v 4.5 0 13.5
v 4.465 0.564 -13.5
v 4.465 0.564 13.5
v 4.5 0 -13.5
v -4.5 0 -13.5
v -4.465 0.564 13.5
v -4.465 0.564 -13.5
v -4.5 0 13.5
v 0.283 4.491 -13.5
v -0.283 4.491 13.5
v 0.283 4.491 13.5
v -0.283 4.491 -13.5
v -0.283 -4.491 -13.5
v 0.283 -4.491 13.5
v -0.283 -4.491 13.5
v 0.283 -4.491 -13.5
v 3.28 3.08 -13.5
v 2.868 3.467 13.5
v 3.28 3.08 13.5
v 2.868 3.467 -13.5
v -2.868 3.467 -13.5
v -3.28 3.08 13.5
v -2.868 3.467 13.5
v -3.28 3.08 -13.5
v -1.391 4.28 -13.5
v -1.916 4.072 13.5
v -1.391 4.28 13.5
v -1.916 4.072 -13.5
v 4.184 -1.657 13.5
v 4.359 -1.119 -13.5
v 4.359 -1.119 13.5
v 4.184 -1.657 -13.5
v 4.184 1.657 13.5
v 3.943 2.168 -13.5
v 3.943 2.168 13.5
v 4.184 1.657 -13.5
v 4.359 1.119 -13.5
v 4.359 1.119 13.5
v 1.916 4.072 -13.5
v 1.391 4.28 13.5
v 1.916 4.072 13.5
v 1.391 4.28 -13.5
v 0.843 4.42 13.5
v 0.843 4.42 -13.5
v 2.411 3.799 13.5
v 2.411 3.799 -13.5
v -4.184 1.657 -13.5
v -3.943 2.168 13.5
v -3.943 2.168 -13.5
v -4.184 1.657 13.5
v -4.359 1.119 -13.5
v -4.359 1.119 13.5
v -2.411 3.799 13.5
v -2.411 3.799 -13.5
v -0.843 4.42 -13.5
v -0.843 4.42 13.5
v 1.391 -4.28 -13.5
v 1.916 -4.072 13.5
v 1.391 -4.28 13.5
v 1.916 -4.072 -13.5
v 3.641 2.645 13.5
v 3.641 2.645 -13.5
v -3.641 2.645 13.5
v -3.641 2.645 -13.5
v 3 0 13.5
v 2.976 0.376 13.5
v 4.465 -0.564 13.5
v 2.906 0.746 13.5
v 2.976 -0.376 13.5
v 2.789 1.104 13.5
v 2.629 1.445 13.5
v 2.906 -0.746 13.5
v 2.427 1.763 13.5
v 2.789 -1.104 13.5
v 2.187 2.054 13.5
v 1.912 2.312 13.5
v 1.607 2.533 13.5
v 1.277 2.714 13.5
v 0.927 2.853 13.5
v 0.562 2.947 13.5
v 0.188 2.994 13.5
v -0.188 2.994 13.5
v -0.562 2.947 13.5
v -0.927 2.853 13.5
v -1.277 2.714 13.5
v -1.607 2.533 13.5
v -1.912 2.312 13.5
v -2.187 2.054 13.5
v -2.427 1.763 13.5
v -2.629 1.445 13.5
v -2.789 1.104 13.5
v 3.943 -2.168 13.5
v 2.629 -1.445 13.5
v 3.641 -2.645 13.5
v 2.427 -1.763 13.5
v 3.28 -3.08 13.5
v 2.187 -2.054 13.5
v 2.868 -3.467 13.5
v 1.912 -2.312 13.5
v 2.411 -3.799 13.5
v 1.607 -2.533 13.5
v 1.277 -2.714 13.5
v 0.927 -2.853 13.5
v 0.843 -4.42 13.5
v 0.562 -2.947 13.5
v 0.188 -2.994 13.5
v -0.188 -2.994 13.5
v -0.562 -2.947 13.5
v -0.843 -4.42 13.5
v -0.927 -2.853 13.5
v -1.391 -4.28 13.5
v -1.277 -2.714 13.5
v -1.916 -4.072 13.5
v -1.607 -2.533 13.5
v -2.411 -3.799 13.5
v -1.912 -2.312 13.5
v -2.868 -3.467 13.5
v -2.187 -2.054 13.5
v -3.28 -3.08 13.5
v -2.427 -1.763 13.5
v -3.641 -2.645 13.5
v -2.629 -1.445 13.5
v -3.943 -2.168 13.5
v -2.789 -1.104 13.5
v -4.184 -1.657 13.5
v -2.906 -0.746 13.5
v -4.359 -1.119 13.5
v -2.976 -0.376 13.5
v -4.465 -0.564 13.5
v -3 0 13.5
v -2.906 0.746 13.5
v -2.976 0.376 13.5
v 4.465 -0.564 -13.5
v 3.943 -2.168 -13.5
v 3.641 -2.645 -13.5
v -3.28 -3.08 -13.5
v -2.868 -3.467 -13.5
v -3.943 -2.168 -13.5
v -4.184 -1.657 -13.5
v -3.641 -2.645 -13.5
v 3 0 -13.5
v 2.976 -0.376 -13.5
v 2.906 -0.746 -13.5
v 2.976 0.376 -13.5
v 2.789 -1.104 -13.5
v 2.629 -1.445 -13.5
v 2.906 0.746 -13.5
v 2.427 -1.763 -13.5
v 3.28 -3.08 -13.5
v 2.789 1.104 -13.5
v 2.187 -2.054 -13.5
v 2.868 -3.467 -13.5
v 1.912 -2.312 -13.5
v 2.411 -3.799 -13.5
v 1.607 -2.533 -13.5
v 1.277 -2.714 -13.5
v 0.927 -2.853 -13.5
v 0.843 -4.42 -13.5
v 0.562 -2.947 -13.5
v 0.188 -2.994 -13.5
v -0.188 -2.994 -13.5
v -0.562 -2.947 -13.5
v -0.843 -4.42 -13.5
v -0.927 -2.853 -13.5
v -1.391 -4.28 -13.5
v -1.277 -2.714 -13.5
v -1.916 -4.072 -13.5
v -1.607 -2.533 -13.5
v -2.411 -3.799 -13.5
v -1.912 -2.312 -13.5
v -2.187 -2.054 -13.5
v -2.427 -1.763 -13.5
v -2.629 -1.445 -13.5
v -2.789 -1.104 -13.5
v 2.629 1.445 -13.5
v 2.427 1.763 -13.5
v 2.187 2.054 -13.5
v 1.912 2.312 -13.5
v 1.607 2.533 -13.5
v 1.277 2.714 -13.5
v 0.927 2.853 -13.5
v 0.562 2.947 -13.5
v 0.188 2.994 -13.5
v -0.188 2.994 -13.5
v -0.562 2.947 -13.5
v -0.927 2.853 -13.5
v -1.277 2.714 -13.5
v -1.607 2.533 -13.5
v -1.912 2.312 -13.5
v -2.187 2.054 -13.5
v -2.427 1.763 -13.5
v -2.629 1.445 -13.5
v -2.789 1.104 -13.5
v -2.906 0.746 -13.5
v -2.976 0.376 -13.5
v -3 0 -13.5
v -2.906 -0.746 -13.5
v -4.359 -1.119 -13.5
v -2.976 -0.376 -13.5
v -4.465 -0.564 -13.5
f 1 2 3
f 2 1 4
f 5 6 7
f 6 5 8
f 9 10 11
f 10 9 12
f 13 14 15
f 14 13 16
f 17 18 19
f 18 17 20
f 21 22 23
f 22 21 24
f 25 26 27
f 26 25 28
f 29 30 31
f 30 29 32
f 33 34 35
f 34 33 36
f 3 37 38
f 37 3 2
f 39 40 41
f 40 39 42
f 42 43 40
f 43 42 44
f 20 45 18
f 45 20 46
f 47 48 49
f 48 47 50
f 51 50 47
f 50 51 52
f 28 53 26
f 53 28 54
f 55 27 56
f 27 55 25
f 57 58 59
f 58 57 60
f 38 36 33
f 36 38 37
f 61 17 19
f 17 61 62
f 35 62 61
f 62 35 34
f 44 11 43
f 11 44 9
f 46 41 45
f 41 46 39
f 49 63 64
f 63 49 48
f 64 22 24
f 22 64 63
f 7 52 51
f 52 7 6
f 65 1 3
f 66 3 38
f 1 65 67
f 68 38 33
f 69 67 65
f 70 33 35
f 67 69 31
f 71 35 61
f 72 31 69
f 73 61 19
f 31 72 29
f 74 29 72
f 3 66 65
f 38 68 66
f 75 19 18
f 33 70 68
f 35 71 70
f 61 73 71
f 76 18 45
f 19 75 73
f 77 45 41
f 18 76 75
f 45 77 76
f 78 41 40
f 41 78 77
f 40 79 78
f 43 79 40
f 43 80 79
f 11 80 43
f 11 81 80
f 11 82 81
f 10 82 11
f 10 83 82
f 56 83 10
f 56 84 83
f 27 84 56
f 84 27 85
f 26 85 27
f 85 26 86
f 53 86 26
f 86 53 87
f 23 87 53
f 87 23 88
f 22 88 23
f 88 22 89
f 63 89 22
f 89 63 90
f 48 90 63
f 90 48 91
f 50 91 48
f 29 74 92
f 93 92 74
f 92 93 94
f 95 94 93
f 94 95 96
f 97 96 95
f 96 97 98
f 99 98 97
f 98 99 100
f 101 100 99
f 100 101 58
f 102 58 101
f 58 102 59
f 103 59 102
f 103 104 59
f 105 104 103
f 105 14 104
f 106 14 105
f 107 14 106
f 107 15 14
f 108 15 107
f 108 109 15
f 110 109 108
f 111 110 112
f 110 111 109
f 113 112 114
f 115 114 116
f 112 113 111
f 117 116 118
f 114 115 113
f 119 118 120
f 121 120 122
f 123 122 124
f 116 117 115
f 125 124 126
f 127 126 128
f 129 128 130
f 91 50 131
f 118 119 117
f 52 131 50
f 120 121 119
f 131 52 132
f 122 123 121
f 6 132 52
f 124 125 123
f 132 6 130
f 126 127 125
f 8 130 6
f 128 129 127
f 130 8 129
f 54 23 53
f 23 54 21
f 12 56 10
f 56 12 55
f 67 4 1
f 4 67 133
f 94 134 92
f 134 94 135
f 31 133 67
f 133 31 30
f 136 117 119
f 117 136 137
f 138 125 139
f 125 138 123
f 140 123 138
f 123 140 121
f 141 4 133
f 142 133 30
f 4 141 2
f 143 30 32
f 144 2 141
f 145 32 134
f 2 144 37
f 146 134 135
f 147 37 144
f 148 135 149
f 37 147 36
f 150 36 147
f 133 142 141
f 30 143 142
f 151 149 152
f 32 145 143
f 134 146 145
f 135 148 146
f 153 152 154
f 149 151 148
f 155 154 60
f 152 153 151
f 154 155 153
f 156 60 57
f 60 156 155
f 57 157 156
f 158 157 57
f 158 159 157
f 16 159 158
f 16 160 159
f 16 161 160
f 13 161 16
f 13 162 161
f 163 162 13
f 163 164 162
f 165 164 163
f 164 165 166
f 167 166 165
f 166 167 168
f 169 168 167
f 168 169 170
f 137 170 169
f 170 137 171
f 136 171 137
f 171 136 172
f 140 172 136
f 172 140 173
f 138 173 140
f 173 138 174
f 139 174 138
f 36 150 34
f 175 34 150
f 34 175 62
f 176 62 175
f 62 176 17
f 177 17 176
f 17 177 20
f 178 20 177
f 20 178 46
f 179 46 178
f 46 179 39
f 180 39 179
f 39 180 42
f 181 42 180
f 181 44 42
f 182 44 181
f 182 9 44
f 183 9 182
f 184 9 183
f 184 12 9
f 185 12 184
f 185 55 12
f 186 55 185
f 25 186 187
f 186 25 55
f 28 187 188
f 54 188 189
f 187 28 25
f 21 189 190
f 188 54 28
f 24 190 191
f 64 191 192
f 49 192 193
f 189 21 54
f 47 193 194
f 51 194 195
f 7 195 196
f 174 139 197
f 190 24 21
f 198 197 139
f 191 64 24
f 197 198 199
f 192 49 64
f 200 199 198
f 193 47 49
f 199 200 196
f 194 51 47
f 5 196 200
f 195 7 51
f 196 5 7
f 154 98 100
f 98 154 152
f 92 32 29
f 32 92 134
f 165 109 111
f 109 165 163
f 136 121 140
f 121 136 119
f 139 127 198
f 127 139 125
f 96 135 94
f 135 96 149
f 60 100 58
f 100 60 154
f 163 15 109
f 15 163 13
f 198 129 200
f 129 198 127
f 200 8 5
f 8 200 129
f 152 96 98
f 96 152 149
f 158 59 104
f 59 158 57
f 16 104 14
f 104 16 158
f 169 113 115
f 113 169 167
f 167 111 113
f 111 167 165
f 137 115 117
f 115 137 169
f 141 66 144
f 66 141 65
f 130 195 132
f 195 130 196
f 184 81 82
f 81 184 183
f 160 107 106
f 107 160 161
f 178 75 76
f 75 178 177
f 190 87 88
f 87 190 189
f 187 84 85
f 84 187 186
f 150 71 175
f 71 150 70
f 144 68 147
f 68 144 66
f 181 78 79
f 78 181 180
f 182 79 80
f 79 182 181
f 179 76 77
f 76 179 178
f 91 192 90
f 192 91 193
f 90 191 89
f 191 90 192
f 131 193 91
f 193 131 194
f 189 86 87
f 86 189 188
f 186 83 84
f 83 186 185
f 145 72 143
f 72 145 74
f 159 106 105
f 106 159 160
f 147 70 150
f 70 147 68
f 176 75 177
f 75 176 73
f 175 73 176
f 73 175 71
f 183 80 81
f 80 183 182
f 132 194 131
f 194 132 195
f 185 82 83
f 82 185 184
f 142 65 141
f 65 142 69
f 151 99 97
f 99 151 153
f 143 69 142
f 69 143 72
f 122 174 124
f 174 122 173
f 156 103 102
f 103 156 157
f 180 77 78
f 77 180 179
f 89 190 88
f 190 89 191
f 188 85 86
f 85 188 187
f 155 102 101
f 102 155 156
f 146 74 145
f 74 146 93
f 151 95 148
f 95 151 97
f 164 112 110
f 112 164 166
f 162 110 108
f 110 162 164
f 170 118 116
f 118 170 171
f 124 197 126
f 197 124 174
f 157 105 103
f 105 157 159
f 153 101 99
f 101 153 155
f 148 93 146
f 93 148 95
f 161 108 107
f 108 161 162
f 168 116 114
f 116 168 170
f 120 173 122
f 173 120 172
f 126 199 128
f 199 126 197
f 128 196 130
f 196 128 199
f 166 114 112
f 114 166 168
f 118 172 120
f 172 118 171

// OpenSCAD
$fn = 50;


difference() {
	union() {
		translate(v = [0, 0, -13.5000000000]) {
			cylinder(h = 27, r = 4.5000000000);
		}
	}
	union() {
		translate(v = [0, 0, -100.0000000000]) {
			cylinder(h = 200, r = 3.0000000000);
		}
	}
}
